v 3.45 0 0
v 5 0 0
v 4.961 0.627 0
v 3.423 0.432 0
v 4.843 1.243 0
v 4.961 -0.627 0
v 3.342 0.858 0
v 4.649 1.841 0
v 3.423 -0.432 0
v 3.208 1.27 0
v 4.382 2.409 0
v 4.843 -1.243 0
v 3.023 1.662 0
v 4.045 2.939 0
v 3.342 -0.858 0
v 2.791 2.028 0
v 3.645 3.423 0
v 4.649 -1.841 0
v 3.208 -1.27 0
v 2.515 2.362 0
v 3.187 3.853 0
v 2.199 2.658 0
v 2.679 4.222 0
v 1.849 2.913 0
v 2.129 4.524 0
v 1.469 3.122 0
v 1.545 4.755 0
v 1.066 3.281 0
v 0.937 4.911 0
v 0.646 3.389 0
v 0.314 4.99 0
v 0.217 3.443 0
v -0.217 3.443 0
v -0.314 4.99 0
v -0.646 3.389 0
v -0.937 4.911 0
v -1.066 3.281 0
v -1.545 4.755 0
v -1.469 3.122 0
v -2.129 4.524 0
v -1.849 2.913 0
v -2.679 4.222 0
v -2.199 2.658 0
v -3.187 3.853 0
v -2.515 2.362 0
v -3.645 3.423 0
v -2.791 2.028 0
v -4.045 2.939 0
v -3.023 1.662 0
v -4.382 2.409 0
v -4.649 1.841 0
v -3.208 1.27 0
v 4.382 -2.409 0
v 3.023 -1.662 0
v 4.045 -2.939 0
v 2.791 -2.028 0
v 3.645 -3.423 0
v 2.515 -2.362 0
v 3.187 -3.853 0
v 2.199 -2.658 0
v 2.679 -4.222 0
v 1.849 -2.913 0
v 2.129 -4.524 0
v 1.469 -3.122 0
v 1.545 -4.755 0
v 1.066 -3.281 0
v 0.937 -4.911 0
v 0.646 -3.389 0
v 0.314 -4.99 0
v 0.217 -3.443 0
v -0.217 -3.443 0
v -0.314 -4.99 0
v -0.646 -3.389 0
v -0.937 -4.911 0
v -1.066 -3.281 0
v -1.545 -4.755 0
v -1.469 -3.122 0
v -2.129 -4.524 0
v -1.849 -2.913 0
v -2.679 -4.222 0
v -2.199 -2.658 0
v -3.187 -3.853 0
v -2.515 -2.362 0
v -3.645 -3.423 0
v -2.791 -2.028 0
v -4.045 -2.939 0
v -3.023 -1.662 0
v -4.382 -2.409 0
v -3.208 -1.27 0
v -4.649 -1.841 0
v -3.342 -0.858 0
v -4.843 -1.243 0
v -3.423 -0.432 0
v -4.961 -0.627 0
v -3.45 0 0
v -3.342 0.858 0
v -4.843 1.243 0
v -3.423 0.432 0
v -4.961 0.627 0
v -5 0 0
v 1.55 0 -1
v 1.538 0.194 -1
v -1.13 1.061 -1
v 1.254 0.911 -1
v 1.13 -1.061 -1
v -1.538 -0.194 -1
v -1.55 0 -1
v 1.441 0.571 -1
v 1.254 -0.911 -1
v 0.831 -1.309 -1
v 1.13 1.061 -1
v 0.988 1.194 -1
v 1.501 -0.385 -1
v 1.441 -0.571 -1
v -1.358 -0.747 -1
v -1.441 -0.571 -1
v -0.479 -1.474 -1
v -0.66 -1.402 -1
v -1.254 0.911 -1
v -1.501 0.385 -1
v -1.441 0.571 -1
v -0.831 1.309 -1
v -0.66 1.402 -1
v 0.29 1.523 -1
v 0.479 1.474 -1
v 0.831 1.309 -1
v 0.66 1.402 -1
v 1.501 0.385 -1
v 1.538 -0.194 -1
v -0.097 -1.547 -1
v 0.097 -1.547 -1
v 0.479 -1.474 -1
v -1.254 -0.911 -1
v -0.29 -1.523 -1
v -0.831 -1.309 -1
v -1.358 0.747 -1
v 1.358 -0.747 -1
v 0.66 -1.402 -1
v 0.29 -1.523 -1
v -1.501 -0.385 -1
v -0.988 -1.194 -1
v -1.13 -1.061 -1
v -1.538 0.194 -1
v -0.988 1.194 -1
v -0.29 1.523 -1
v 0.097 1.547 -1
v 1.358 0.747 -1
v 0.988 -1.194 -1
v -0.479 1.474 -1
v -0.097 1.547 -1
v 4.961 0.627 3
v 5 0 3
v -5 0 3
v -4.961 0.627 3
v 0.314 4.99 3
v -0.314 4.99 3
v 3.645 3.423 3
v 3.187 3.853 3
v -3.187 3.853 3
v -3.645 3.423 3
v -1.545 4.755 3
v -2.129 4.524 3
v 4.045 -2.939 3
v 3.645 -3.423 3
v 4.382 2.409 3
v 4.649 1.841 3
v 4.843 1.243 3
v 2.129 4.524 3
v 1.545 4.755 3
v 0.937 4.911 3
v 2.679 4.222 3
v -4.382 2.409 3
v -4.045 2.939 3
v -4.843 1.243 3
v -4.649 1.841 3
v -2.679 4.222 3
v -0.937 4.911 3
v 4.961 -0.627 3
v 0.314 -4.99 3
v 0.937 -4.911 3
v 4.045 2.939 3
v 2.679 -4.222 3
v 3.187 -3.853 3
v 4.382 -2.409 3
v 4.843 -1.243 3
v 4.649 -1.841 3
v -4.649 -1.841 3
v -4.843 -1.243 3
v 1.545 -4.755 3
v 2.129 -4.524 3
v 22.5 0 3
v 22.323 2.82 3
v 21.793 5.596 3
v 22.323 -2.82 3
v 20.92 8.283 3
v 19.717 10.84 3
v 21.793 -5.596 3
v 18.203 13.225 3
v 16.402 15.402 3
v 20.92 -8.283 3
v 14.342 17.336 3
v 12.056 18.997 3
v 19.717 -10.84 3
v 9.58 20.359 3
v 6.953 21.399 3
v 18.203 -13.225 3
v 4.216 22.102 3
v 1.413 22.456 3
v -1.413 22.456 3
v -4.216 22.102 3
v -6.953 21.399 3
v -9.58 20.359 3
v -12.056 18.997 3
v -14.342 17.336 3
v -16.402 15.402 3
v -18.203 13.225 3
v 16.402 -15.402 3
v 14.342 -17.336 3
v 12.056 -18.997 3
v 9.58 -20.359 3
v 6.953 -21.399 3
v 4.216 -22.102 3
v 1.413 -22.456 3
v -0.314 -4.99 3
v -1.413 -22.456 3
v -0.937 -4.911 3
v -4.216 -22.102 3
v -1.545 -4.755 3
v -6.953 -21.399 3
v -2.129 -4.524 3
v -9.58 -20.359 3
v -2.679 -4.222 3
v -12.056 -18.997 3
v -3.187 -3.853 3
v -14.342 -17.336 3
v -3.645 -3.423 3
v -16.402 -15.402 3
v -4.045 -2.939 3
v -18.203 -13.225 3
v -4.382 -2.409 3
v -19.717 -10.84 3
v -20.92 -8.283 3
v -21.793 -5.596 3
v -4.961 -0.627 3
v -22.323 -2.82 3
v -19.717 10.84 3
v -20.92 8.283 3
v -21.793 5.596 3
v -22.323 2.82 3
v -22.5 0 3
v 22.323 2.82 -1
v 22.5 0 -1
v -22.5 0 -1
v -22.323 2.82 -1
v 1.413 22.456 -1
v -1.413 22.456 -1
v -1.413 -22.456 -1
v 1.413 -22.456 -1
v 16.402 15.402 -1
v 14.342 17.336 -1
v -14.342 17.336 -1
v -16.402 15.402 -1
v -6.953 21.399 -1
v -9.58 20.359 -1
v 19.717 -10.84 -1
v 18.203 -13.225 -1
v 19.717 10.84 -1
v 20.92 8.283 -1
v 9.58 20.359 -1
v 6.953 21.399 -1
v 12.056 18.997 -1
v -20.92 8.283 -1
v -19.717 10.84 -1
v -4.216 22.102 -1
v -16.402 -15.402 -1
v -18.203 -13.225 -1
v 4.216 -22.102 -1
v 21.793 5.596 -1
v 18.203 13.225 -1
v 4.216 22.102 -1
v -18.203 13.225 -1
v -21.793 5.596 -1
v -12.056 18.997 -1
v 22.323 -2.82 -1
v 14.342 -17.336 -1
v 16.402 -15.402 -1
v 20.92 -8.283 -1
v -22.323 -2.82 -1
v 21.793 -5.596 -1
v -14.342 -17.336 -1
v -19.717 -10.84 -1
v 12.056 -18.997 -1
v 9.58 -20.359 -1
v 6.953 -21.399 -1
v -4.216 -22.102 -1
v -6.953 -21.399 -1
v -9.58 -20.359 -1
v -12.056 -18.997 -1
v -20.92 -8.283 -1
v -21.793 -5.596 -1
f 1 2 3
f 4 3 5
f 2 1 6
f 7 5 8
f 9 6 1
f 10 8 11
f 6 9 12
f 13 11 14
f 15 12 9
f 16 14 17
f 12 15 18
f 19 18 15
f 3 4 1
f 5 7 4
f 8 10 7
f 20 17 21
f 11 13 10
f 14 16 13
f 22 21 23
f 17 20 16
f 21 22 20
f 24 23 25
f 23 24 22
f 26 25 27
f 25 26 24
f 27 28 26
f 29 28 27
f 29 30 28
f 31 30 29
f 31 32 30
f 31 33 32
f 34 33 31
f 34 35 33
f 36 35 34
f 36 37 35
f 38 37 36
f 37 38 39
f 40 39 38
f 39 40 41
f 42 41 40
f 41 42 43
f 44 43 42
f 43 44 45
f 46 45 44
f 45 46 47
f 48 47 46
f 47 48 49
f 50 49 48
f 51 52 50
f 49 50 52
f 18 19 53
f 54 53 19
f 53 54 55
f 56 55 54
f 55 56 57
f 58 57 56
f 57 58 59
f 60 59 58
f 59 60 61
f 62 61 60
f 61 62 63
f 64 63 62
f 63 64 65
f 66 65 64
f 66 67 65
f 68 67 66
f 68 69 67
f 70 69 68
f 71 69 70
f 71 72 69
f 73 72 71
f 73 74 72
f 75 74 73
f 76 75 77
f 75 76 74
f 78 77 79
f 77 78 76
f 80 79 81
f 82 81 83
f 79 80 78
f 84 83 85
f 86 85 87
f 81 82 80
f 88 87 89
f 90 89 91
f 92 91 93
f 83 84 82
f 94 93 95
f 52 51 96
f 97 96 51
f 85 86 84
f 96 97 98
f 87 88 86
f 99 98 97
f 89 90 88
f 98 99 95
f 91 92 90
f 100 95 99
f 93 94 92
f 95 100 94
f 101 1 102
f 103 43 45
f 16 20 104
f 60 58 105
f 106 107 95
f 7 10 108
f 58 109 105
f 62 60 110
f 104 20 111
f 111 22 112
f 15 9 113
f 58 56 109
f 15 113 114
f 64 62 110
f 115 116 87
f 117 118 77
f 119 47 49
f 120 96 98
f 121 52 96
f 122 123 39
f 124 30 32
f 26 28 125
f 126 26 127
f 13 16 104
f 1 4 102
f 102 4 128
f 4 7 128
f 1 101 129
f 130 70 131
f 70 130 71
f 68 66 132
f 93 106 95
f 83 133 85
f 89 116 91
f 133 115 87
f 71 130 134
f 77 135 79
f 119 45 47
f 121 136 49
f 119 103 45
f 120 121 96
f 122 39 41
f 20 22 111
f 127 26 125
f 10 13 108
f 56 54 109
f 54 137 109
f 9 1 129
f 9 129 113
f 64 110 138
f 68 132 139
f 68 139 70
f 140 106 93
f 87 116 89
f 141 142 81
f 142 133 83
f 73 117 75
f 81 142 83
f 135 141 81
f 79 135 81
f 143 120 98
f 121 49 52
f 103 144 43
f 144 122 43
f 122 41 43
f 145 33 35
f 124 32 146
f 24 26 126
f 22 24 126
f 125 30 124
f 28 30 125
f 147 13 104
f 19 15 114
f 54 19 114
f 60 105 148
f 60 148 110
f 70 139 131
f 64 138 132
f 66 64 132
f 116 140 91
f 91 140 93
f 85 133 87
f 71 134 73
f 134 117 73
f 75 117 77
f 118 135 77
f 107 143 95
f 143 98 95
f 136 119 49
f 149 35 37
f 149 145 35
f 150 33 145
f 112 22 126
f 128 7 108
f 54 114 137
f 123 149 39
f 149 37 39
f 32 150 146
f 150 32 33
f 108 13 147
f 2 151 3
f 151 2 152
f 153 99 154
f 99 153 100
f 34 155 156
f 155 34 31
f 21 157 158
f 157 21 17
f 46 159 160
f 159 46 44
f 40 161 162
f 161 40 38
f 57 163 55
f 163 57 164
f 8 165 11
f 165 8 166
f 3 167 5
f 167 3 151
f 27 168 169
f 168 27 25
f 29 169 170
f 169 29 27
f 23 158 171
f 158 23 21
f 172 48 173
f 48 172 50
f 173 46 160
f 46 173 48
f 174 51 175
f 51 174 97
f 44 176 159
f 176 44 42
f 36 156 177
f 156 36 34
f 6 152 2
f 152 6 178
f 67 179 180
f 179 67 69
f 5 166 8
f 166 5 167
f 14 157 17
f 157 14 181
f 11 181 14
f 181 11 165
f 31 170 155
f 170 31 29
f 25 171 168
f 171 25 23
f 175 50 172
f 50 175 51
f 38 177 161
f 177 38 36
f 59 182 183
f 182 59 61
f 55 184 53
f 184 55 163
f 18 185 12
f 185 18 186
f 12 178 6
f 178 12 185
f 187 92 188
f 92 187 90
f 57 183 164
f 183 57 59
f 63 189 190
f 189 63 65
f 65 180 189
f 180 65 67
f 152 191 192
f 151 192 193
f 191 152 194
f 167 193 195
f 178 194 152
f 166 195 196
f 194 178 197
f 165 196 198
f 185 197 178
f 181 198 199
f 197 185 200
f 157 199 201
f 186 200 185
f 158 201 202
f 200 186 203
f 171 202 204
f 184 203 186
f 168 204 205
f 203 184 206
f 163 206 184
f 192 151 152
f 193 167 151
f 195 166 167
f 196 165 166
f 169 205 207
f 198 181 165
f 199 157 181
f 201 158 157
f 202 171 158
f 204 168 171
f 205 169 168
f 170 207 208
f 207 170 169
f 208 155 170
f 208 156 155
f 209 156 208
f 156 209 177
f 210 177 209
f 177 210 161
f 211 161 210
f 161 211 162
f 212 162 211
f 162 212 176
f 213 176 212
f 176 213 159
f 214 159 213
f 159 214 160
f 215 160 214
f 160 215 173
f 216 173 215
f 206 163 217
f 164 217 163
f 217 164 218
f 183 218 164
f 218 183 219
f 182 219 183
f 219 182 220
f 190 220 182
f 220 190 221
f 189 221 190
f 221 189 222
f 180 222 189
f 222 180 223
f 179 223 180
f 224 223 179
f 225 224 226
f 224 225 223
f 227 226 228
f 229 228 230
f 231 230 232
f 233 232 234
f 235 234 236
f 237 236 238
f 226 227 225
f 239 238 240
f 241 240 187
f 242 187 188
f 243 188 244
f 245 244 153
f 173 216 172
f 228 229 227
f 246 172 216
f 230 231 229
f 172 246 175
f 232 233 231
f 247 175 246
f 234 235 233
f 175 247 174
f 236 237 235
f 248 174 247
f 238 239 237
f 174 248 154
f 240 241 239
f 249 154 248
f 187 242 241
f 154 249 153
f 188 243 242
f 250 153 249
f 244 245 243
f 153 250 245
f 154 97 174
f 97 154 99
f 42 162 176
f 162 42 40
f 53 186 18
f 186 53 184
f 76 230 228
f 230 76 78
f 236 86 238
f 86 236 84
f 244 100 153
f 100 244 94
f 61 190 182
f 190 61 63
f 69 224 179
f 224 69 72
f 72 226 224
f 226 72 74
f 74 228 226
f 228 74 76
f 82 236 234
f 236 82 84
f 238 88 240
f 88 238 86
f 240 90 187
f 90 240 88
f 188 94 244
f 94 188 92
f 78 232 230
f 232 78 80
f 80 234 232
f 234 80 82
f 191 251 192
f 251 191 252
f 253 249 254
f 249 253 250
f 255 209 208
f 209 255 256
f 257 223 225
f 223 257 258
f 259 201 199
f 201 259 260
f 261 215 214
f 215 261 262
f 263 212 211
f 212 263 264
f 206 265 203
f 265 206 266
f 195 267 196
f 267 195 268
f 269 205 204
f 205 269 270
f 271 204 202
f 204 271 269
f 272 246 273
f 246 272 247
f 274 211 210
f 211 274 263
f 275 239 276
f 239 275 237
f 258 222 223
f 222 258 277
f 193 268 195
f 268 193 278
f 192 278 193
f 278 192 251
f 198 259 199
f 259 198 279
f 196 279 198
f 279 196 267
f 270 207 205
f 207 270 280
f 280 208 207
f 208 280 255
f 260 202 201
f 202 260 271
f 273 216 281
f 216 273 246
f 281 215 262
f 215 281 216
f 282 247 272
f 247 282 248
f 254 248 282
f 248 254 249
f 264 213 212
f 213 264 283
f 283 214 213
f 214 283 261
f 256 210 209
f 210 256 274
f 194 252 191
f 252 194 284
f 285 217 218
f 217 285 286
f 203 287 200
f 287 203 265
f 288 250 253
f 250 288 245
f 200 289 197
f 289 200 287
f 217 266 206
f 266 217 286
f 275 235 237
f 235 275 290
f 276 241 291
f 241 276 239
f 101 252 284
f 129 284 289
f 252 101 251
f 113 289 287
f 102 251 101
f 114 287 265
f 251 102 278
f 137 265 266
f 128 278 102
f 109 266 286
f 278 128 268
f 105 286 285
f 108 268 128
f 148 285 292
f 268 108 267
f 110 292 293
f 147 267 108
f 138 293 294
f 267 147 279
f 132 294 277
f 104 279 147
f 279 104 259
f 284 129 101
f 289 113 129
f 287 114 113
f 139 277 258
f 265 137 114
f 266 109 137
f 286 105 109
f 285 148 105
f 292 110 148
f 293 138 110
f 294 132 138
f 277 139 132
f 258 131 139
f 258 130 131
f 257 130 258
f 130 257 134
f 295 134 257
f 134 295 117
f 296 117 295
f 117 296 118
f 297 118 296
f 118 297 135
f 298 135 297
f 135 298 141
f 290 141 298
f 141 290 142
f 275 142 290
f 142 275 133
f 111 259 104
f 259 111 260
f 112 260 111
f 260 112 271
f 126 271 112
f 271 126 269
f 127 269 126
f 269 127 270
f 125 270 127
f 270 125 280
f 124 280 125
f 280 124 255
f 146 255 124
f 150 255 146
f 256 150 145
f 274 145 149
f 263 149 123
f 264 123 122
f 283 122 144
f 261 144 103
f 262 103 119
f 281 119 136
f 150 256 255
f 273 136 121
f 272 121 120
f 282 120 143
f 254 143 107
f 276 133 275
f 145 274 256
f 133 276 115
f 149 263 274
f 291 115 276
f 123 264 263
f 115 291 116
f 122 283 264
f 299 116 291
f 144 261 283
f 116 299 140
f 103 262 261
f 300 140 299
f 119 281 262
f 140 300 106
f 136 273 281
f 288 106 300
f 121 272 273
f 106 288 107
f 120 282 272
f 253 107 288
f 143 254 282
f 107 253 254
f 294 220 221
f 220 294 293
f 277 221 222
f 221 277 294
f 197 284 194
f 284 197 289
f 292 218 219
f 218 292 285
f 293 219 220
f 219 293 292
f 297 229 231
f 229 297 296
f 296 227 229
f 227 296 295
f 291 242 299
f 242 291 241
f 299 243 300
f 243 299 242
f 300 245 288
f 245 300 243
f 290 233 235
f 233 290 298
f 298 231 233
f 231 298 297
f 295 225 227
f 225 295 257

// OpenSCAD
$fn = 50;


difference() {
	union() {
		translate(v = [0, 0, -1.0000000000]) {
			cylinder(h = 4.0000000000, r = 22.5000000000);
		}
	}
	union() {
		translate(v = [0, 0, 0]) {
			rotate(a = [0, 0, 0]) {
				difference() {
					union() {
						translate(v = [0, 0, -4.0000000000]) {
							cylinder(h = 4.0000000000, r = 1.2500000000);
						}
						translate(v = [0, 0, -1.0000000000]) {
							cylinder(h = 1.0000000000, r1 = 1.5500000000, r2 = 3.4500000000);
						}
						translate(v = [0, 0, -4.0000000000]) {
							cylinder(h = 4.0000000000, r = 1.5500000000);
						}
						translate(v = [0, 0, -4.0000000000]) {
							cylinder(h = 4.0000000000, r = 1.2500000000);
						}
					}
					union();
				}
			}
		}
		#cylinder(h = 3, r = 5.0000000000);
	}
}
